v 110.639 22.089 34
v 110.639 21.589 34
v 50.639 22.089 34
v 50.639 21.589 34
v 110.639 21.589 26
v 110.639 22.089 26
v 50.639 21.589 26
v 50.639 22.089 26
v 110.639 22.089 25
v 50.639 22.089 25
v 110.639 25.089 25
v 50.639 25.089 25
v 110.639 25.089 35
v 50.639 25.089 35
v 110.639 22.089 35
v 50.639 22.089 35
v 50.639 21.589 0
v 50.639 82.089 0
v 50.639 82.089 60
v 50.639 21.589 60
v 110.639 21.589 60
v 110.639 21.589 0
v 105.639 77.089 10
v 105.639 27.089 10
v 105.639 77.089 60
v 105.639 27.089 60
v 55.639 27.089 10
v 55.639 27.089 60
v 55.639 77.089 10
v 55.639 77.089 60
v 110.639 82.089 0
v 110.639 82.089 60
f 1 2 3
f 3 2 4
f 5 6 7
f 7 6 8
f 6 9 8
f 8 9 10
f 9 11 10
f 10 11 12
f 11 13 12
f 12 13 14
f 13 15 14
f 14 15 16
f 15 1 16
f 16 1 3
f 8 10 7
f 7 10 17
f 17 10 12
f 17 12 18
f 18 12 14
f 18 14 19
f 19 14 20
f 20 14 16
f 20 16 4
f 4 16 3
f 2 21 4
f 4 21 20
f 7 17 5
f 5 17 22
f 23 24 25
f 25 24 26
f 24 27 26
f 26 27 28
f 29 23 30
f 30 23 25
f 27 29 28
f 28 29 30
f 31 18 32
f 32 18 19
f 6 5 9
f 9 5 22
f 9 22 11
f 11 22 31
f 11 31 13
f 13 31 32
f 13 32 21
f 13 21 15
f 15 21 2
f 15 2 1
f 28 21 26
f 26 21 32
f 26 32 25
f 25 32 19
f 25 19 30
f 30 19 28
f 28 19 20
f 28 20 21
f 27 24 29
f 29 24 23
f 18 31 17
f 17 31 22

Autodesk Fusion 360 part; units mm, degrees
sketch "Sketch1" plane through (0, 0, 0) normal (0, 0, 1) x (1, 0, 0)
  line L0 (50.6391, 82.0886) -> (110.6391, 82.0886)
  line L1 (110.6391, 82.0886) -> (110.6391, 22.0886)
  line L2 (110.6391, 22.0886) -> (50.6391, 22.0886)
  line L3 (50.6391, 22.0886) -> (50.6391, 82.0886)
  line L4 (55.6391, 77.0886) -> (105.6391, 77.0886)
  line L5 (105.6391, 77.0886) -> (105.6391, 27.0886)
  line L6 (105.6391, 27.0886) -> (55.6391, 27.0886)
  line L7 (55.6391, 27.0886) -> (55.6391, 77.0886)
  dimension "d1" = 60
  dimension "d2" = 60
  dimension "d5" = 50
  dimension "d6" = 50
extrude "Extrude1" add sketch "Sketch1" along normal blind 10 contours L4 L5 L6 L7
extrude "Extrude2" add sketch "Sketch1" along normal blind 60
sketch "Sketch2" plane through (0, 22.0886, 0) normal (0, -1, 0) x (1, 0, 0)
  line L0 (50.6391, 0) -> (110.6391, 0)
  line L1 (110.6391, 0) -> (110.6391, 60)
  line L2 (110.6391, 60) -> (50.6391, 60)
  line L3 (50.6391, 60) -> (50.6391, 0)
  line L4 (80.6391, 35) -> (75.6391, 35)
  line L5 (75.6391, 35) -> (85.6391, 35)
  line L6 (85.6391, 35) -> (85.6391, 25)
  line L7 (85.6391, 25) -> (75.6391, 25)
  line L8 (75.6391, 25) -> (75.6391, 35)
  dimension "d13" = 10
  dimension "d14" = 10
extrude "Extrude3" cut sketch "Sketch2" against normal blind 3.3 contours L4 L5 L6 L7 L8
extrude "Extrude4" add 1 faces at (78.9724, 25.3886, 31.6667) along direction (0, -1, 0) blind 3.3
sketch "Sketch3" plane through (0, 22.0886, 0) normal (0, -1, 0) x (1, 0, 0)
  line L0 (50.6391, 0) -> (110.6391, 0)
  line L1 (110.6391, 0) -> (110.6391, 60)
  line L2 (110.6391, 60) -> (50.6391, 60)
  line L3 (50.6391, 60) -> (50.6391, 0)
extrude "Extrude5" add 1 faces at (70.6391, 22.0886, 40) along direction (0, -1, 0) blind 0.5
sketch "Sketch4" plane through (110.6391, 0, 0) normal (1, 0, 0) x (0, 1, 0)
  line L0 (21.5886, 0) -> (82.0886, 0)
  line L1 (82.0886, 0) -> (82.0886, 60)
  line L2 (82.0886, 60) -> (21.5886, 60)
  line L3 (21.5886, 60) -> (21.5886, 0)
  line L4 (22.0886, 30) -> (22.0886, 35)
  line L5 (22.0886, 35) -> (25.0886, 35)
  line L6 (25.0886, 35) -> (25.0886, 25)
  line L7 (25.0886, 25) -> (22.0886, 25)
  line L8 (22.0886, 25) -> (22.0886, 35)
  line L9 (22.0886, 35) -> (22.0886, 34)
  line L10 (22.0886, 34) -> (21.5886, 34)
  line L11 (21.5886, 34) -> (21.5886, 26)
  line L12 (21.5886, 26) -> (22.0886, 26)
  line L13 (22.0886, 26) -> (22.0886, 34)
  dimension "d22" = 5
  dimension "d23" = 3
  dimension "d24" = 10
  dimension "d25" = 1
  dimension "d26" = 8
extrude "Extrude6" cut sketch "Sketch4" against normal blind 60 contours L3 L4 L8 L10 L11 L12 L13 | L4 L5 L6 L7 L8 L9 L13
